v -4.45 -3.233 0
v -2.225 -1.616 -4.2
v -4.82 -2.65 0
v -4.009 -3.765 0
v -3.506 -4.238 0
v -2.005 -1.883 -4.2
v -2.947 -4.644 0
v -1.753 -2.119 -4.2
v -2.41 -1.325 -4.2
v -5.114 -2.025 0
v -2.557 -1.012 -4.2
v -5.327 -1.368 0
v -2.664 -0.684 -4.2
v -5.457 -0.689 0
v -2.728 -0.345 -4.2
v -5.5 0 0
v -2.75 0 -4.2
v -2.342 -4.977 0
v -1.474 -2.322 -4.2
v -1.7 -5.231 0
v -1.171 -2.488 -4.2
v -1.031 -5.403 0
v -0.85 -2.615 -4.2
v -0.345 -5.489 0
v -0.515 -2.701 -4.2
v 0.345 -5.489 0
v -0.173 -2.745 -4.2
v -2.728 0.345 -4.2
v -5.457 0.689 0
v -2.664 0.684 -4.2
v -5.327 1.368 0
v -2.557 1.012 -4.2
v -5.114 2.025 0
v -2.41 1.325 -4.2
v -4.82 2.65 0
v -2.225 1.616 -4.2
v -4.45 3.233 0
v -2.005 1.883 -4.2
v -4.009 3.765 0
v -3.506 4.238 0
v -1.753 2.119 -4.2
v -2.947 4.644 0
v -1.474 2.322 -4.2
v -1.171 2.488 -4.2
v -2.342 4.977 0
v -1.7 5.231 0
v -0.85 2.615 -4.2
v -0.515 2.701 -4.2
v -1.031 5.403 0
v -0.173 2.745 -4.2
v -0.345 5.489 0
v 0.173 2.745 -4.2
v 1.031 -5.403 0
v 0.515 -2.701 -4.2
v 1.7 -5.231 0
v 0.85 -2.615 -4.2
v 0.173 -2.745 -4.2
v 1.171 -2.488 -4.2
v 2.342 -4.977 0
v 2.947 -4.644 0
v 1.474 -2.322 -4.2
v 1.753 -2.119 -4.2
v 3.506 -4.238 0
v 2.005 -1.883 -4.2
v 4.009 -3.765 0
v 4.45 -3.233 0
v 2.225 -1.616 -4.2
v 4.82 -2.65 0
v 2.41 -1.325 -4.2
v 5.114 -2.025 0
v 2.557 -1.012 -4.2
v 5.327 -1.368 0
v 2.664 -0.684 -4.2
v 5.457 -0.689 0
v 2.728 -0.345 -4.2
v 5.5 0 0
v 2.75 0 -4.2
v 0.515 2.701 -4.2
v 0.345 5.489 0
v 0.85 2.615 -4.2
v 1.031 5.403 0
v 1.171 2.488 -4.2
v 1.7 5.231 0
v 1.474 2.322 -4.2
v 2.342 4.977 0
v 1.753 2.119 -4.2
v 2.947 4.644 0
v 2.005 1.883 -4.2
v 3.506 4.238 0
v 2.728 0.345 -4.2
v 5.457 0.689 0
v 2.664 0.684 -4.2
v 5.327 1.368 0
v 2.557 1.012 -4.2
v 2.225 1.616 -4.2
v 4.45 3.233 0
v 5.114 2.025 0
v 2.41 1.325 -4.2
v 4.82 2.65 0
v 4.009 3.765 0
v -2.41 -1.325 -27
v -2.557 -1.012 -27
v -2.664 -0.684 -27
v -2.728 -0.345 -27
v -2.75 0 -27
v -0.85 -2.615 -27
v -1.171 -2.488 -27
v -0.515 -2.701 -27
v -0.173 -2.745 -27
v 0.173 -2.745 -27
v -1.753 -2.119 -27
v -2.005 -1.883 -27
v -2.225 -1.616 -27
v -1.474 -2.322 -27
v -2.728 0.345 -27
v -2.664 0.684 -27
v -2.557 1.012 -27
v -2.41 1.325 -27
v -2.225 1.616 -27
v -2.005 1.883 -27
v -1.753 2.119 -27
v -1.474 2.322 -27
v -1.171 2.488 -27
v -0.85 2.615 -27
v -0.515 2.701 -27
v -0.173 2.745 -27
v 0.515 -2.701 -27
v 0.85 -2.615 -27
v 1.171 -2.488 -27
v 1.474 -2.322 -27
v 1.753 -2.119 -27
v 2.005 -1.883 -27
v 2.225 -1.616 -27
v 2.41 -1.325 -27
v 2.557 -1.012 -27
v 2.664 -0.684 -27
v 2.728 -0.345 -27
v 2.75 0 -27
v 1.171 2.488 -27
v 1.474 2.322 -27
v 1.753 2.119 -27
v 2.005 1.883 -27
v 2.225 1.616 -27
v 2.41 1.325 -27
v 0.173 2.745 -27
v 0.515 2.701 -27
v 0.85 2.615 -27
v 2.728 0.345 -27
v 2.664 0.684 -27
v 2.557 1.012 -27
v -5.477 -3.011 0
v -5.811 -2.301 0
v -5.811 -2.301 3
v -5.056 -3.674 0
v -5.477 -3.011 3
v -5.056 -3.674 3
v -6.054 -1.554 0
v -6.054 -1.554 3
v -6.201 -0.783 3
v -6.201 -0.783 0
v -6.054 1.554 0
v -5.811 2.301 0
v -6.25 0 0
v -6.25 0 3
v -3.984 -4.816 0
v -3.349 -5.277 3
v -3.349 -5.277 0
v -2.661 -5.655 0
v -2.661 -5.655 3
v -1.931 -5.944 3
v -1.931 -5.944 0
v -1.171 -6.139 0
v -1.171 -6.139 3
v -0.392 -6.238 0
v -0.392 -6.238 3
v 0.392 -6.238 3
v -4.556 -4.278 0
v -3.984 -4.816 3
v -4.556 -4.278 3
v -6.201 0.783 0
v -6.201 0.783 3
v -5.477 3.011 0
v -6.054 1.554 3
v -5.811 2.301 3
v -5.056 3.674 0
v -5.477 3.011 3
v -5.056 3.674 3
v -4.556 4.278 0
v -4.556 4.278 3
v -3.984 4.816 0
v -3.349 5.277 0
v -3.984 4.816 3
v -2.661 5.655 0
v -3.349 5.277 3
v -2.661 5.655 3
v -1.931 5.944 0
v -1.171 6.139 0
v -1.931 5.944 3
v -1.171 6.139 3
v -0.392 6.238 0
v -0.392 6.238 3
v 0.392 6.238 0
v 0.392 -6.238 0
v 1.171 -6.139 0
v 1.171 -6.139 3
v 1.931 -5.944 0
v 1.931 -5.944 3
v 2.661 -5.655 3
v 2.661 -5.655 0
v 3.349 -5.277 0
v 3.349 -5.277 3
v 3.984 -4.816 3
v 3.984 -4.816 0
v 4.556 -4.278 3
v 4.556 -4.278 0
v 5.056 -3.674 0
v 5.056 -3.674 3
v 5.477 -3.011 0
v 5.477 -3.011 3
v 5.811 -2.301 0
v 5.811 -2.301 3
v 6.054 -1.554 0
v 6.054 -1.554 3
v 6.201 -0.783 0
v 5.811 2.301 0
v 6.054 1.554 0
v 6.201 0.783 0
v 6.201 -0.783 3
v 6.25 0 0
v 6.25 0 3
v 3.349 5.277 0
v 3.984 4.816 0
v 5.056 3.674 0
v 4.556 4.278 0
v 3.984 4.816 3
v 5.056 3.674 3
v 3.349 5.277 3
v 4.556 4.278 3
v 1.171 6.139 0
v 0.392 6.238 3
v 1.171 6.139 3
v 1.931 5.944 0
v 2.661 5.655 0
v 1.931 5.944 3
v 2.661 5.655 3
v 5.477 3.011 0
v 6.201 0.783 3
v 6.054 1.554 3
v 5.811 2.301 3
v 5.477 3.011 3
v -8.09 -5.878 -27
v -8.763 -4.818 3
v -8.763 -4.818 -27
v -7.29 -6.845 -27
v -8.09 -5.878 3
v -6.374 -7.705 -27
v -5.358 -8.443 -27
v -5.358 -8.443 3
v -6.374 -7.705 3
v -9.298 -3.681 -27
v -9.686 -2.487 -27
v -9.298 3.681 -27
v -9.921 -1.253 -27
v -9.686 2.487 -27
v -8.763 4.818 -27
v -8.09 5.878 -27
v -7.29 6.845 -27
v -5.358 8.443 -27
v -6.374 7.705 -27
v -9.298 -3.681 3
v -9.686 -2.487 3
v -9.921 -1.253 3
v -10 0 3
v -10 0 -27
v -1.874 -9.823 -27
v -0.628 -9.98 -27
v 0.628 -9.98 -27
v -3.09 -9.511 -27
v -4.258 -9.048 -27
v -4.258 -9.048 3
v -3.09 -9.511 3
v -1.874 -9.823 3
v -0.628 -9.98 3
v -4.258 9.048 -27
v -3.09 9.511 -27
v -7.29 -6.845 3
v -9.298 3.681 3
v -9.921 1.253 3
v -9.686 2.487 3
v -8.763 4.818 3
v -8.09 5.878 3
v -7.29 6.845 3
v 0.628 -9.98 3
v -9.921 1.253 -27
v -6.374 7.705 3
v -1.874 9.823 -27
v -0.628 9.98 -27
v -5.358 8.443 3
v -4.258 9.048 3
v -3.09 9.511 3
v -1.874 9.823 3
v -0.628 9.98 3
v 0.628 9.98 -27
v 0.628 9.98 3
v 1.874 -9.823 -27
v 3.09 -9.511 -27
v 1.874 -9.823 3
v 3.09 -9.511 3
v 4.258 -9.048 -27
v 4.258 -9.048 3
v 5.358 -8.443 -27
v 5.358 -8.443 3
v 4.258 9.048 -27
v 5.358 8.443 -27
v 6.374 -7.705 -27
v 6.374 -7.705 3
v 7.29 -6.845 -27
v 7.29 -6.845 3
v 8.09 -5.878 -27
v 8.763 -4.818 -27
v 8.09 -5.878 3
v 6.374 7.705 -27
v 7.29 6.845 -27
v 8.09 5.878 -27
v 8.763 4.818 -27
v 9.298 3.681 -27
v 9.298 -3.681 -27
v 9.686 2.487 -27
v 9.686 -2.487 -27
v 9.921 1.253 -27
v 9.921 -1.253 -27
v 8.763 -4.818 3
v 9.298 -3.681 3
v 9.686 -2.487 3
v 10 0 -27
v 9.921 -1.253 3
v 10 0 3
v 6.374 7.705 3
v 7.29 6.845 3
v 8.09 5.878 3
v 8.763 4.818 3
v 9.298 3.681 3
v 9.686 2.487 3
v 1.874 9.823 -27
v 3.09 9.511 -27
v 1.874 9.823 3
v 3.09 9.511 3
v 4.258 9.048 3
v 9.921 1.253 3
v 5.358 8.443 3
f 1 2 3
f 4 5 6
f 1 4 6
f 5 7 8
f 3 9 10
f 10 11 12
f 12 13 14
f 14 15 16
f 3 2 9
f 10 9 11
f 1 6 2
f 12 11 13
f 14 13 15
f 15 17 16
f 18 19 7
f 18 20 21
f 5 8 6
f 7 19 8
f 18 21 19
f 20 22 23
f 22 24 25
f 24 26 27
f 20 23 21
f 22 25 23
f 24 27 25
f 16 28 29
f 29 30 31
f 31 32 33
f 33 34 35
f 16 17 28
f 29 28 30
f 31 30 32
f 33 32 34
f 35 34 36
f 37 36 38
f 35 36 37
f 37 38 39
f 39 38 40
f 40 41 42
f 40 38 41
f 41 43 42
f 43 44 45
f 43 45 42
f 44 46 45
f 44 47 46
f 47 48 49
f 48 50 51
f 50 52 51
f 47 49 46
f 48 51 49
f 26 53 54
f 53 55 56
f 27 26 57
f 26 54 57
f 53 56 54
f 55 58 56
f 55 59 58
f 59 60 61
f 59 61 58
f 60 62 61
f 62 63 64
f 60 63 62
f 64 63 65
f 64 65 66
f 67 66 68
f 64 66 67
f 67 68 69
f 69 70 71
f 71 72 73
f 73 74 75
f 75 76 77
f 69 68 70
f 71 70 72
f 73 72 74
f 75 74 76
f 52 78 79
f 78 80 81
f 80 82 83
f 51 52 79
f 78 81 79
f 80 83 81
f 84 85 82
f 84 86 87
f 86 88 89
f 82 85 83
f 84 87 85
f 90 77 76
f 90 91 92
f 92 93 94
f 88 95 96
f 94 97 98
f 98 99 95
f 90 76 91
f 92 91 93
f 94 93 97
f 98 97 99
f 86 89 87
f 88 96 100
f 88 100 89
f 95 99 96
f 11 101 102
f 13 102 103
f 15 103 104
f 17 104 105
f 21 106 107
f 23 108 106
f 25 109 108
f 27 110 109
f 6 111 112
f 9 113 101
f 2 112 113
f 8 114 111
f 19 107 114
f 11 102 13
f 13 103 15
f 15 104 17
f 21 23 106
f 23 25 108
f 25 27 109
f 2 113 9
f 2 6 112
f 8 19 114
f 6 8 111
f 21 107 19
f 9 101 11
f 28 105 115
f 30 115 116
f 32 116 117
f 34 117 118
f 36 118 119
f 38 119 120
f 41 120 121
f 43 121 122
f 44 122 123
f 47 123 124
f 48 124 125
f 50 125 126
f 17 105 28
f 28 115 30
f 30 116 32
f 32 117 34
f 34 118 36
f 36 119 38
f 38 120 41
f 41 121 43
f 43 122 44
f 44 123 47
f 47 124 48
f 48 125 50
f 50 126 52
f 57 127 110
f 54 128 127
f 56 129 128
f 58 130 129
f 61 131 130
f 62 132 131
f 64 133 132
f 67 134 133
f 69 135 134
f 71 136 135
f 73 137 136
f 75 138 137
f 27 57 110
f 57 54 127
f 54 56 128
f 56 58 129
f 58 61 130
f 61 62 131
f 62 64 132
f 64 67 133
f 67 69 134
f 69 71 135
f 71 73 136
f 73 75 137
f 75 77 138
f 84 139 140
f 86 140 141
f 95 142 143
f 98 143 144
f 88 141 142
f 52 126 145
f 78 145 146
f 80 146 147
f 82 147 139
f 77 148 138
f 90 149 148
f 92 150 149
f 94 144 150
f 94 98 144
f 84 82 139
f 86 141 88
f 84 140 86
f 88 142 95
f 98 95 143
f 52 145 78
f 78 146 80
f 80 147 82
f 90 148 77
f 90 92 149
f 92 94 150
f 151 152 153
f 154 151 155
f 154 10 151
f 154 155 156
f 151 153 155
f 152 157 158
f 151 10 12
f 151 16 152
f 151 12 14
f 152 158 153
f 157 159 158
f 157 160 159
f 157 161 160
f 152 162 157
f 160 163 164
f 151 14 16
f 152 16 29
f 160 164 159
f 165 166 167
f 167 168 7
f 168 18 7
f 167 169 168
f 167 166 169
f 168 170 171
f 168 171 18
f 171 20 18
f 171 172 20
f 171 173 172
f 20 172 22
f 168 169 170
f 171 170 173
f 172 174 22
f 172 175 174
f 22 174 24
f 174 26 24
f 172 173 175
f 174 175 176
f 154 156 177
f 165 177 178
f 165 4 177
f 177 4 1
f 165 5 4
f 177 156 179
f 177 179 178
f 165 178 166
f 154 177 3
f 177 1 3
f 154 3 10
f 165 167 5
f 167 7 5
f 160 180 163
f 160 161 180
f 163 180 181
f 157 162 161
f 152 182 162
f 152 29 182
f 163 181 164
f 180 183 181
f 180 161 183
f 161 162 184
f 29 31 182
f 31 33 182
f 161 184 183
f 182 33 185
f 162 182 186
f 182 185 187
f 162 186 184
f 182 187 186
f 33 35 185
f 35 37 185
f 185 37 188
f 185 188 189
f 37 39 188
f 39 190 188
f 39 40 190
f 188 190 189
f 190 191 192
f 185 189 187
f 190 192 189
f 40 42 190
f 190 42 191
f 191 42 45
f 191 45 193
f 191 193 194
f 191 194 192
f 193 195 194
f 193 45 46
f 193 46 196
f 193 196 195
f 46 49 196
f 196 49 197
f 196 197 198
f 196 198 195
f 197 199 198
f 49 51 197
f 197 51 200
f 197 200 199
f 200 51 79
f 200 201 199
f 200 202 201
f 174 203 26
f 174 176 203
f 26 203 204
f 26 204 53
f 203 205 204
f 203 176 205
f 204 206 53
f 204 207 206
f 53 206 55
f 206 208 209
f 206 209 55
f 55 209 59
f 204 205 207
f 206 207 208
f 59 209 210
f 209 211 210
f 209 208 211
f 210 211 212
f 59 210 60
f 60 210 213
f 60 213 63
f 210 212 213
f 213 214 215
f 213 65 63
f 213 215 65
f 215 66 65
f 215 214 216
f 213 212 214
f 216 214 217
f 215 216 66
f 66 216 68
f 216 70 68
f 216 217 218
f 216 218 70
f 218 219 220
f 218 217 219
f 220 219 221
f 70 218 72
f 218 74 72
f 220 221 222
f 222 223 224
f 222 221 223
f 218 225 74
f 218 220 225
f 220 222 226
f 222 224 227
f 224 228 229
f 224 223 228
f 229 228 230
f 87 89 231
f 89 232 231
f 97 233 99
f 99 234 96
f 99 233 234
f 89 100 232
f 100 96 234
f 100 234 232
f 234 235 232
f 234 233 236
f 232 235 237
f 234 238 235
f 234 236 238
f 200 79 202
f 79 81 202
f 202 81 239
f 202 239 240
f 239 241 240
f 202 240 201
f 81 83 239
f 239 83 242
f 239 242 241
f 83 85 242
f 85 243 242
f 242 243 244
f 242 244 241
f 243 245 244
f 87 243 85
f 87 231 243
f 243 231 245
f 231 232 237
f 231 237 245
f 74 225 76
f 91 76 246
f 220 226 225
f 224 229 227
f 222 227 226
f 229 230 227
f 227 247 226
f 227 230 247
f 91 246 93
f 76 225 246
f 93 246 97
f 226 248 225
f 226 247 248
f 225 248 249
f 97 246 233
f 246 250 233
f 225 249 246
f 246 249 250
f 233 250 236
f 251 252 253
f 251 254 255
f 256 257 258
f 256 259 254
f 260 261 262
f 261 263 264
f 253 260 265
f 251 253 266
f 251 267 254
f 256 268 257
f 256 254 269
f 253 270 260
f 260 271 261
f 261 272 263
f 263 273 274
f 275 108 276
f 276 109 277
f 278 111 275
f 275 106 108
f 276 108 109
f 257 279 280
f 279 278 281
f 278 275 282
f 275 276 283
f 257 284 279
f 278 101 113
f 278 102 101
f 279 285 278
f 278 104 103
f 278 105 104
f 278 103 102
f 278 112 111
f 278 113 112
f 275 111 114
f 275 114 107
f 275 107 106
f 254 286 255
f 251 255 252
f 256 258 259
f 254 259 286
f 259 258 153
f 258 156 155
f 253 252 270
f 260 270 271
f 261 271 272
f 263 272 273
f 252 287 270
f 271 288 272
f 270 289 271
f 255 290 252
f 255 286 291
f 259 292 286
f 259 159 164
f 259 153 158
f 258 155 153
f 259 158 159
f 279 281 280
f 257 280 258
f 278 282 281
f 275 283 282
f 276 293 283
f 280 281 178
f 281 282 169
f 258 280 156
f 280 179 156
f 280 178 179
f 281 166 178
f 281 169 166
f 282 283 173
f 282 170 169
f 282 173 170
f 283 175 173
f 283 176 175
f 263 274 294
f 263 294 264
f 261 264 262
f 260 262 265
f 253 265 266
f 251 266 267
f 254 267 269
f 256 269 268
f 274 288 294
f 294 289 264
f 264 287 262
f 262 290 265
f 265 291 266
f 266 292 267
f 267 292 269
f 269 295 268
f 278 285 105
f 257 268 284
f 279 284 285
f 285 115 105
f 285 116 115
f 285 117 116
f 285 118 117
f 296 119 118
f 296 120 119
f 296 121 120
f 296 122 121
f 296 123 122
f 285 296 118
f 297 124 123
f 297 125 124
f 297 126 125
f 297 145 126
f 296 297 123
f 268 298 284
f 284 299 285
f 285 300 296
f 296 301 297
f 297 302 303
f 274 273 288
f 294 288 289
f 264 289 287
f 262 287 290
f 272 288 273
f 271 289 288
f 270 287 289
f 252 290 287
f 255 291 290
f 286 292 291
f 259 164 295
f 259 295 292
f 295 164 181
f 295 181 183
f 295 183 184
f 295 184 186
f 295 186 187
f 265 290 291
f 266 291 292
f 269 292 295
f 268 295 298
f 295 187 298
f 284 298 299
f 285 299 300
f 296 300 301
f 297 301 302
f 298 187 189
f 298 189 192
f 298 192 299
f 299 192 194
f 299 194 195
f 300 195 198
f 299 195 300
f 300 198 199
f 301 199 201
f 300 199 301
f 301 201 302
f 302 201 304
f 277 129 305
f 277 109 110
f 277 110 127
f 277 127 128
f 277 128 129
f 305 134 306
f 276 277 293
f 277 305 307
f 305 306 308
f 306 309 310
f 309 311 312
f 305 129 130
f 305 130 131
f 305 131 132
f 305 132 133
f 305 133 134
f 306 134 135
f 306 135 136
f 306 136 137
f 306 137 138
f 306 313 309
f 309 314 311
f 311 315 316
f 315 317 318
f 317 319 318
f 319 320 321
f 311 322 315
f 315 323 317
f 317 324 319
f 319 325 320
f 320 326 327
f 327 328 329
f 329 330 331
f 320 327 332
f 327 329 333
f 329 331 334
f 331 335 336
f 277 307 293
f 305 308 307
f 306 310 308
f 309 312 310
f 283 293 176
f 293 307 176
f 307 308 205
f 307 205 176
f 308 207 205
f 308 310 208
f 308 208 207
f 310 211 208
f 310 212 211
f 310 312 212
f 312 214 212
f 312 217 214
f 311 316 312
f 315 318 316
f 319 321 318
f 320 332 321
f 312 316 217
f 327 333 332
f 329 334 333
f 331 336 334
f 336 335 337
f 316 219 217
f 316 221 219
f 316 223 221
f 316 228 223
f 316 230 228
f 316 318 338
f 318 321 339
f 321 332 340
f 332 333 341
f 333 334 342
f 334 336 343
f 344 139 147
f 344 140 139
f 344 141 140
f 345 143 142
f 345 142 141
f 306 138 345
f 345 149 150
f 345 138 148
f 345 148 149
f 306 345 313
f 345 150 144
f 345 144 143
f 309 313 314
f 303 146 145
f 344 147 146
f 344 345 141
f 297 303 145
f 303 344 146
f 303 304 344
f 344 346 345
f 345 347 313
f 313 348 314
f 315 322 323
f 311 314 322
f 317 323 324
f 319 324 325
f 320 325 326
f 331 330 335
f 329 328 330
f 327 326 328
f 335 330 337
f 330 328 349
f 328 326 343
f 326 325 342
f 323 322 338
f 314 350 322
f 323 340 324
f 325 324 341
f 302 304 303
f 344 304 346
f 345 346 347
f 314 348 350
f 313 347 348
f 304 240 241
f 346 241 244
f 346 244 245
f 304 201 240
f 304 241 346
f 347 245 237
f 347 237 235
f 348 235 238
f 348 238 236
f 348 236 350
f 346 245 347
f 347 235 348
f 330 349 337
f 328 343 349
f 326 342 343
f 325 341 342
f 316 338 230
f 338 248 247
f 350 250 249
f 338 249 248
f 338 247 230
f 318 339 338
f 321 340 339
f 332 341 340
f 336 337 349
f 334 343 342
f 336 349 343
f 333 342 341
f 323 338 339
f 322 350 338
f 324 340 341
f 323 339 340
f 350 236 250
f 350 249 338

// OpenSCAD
$fn = 50;

difference() {
	union() {
		translate(v = [0, 0, -27.0]) {
			cylinder(h = 30, r = 10.0);
		}
	}
	union() {
		translate(v = [0, 0, 0]) {
			rotate(a = [0, 0, 0]) {
				difference() {
					union() {
						translate(v = [0, 0, -30.0]) {
							cylinder(h = 30, r = 2.25);
						}
						translate(v = [0, 0, -4.2]) {
							cylinder(h = 4.2, r1 = 2.75, r2 = 5.5);
						}
						translate(v = [0, 0, -30.0]) {
							cylinder(h = 30, r = 2.75);
						}
						translate(v = [0, 0, -30.0]) {
							cylinder(h = 30, r = 2.25);
						}
					}
					union();
				}
			}
		}
		#cylinder(h = 3, r = 6.25);
	}
}
